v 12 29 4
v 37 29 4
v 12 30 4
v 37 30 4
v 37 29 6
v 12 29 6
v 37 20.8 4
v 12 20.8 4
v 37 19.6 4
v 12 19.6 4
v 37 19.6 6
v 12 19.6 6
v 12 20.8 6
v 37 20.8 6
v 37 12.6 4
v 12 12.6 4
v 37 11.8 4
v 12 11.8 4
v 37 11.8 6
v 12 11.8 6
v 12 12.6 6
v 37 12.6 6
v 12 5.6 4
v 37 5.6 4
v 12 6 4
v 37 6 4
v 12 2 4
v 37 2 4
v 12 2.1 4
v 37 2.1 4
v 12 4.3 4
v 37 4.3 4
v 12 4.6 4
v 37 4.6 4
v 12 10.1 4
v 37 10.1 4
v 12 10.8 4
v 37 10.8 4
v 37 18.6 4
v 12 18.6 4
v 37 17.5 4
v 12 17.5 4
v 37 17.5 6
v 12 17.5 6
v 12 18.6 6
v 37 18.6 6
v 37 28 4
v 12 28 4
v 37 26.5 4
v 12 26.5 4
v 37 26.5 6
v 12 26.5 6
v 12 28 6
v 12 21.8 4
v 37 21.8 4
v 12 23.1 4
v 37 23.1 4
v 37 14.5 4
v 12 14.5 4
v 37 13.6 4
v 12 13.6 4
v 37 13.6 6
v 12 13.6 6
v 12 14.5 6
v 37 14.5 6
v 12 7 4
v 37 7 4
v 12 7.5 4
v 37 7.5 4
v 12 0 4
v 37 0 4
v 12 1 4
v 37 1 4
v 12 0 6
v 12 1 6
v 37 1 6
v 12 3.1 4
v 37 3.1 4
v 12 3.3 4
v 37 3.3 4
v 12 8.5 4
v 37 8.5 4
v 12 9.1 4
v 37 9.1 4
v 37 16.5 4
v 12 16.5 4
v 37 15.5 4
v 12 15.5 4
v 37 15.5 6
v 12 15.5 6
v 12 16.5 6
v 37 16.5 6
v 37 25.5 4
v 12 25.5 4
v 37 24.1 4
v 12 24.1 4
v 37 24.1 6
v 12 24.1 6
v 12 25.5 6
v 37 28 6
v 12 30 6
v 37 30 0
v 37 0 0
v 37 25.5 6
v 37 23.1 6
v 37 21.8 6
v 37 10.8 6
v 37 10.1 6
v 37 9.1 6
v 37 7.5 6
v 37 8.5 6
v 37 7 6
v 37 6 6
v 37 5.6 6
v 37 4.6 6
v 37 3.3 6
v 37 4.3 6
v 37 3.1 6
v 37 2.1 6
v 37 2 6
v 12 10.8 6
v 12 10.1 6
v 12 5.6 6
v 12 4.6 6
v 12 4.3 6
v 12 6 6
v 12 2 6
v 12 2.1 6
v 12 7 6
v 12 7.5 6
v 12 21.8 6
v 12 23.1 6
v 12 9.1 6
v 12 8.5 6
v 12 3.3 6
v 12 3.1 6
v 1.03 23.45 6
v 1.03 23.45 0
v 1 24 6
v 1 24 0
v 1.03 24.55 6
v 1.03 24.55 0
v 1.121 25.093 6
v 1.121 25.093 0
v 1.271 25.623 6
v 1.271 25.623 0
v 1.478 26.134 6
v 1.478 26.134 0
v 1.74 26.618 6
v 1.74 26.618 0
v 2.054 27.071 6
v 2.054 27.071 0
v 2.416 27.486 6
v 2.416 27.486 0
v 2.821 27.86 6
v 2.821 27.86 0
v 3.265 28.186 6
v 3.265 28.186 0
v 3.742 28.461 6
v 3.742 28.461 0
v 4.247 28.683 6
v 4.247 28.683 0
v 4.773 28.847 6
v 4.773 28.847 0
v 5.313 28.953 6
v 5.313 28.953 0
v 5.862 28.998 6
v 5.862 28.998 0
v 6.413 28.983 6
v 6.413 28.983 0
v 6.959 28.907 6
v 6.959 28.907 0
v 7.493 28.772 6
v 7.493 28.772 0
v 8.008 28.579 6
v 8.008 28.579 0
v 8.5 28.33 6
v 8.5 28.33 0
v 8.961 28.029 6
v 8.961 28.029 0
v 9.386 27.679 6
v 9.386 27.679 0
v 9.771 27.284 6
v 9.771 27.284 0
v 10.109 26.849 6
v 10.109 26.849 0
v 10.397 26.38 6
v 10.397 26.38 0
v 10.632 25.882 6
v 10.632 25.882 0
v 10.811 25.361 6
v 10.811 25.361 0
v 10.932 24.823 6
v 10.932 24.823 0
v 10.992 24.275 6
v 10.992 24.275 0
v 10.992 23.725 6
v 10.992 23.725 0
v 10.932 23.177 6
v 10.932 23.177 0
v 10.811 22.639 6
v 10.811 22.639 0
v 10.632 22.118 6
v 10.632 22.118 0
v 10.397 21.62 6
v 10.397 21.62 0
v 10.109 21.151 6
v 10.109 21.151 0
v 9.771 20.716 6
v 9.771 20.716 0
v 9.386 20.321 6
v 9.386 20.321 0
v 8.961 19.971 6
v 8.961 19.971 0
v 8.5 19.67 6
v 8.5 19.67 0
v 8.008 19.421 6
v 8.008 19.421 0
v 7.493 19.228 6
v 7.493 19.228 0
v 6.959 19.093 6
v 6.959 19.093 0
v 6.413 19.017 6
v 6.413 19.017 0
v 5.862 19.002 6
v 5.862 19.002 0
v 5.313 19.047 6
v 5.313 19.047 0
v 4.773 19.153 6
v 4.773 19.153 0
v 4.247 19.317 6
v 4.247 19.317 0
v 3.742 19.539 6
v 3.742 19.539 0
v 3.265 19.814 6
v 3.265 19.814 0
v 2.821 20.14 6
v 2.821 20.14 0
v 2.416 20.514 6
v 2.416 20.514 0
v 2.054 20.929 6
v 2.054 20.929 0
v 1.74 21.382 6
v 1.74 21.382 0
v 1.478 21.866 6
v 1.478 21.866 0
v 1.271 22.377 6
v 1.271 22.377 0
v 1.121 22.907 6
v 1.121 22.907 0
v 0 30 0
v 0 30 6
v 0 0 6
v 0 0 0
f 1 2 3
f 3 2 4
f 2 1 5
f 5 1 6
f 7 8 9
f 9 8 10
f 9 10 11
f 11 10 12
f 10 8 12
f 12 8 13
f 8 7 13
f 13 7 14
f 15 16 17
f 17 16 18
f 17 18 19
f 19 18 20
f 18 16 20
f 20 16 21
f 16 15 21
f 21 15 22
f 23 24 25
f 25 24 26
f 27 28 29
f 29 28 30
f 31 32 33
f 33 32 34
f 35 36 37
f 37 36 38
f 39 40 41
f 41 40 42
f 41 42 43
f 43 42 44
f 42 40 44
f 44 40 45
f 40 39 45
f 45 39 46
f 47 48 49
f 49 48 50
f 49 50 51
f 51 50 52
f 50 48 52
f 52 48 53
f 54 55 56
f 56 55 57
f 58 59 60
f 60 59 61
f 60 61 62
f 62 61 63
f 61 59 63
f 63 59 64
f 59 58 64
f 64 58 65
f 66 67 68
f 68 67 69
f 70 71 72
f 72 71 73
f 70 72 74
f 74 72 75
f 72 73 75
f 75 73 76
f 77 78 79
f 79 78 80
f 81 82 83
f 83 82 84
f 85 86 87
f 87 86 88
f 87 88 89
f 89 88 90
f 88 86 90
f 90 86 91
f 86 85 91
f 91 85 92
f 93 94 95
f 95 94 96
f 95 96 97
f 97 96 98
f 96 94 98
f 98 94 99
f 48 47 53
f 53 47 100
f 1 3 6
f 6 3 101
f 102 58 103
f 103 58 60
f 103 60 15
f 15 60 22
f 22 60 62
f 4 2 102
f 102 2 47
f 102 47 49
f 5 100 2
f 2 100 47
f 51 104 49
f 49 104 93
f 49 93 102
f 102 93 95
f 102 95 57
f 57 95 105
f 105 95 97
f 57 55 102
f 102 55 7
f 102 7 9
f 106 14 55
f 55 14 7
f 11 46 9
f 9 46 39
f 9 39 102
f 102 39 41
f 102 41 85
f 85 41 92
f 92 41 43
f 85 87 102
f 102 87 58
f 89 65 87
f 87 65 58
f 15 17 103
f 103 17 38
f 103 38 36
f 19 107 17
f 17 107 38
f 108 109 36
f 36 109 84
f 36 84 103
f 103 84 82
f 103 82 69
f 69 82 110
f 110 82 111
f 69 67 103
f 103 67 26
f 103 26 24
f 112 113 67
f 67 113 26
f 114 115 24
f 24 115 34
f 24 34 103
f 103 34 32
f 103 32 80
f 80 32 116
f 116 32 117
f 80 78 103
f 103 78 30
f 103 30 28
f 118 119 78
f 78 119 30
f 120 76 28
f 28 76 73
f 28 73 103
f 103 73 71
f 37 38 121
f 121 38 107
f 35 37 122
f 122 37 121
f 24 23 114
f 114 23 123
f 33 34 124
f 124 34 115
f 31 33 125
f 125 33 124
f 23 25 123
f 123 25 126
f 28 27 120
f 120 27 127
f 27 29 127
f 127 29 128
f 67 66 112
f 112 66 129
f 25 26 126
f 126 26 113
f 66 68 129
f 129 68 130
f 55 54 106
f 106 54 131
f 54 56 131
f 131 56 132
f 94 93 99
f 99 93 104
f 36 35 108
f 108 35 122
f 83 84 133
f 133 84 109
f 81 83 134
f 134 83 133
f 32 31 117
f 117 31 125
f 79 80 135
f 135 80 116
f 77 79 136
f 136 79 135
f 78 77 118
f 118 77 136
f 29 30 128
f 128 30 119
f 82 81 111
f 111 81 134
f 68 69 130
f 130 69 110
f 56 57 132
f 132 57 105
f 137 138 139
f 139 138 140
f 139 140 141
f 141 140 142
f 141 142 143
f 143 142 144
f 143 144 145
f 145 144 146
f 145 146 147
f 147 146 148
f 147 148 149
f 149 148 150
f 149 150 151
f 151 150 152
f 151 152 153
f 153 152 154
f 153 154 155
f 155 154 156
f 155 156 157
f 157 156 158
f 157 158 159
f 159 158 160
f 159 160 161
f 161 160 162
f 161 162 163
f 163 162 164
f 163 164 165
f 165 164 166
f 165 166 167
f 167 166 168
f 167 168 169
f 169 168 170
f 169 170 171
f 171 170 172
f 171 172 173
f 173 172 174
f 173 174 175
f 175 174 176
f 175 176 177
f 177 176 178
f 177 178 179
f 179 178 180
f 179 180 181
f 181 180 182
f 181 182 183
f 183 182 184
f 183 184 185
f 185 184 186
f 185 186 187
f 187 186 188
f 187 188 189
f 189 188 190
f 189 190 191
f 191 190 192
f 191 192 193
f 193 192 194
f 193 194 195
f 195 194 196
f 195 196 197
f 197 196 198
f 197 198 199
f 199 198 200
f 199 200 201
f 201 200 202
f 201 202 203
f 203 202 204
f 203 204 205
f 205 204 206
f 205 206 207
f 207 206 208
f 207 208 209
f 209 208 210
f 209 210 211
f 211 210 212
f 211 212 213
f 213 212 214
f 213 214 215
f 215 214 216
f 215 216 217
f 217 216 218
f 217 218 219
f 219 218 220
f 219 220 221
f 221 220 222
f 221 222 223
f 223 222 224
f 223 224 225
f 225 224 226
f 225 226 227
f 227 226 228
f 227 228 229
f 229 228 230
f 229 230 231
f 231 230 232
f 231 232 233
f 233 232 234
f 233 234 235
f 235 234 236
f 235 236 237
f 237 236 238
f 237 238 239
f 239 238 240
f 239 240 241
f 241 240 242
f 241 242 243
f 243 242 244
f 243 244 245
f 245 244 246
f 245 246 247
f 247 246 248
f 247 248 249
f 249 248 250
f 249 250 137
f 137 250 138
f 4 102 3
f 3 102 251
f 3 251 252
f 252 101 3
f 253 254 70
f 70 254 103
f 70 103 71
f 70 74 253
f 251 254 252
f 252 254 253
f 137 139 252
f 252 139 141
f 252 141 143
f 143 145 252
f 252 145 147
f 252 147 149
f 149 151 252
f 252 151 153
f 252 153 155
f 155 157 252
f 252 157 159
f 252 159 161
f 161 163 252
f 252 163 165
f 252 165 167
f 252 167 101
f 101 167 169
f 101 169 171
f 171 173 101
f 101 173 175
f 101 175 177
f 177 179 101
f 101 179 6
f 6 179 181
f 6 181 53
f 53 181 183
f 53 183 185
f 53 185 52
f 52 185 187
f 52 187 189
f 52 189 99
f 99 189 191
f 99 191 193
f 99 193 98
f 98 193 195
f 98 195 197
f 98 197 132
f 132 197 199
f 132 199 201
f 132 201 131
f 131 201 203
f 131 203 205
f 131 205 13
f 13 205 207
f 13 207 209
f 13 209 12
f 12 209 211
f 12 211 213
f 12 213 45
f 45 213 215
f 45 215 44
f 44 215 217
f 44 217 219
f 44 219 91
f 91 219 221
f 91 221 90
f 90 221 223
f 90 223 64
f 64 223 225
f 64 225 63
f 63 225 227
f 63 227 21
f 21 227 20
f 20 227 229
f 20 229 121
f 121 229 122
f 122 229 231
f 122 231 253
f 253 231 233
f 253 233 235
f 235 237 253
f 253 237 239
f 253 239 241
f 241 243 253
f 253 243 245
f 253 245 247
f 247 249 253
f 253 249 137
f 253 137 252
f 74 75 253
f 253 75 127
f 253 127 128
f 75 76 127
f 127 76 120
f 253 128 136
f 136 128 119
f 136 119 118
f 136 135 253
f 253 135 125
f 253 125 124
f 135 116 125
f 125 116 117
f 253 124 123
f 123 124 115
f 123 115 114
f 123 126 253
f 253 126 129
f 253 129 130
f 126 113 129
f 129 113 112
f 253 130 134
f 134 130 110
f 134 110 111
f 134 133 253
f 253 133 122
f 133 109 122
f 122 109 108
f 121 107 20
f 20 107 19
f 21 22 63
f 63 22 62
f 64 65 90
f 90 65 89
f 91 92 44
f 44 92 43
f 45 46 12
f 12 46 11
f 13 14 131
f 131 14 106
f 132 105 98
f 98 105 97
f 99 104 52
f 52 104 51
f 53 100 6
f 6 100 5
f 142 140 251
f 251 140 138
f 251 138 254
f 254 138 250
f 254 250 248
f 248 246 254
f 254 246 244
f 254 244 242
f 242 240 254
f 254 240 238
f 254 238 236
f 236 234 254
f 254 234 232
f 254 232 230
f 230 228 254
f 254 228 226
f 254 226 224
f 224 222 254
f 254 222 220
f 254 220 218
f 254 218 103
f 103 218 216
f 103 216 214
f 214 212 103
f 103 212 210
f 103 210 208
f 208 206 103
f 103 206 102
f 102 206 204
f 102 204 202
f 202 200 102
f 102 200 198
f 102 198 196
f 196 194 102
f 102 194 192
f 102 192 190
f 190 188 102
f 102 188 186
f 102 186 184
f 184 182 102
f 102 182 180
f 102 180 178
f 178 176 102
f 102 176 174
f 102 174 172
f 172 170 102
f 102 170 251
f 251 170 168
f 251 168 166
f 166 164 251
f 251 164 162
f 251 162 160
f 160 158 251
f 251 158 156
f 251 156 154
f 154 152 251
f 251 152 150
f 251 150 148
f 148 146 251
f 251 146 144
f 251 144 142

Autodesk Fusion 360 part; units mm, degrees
sketch "Sketch1" plane through (0, 0, 0) normal (0, 0, 1) x (1, 0, 0)
  line L0 (0, 0) -> (37, 0)
  line L1 (37, 0) -> (37, 30)
  line L2 (37, 30) -> (0, 30)
  line L3 (0, 30) -> (0, 0)
  line L4 (12, 30) -> (12, 0) construction
  line L5 (12, 1) -> (37, 1)
  line L6 (12, 2) -> (37, 2)
  line L7 (12, 2.1) -> (37, 2.1)
  line L8 (12, 3.1) -> (37, 3.1)
  line L9 (12, 3.3) -> (37, 3.3)
  line L10 (12, 4.3) -> (37, 4.3)
  line L11 (12, 4.6) -> (37, 4.6)
  line L12 (12, 5.6) -> (37, 5.6)
  line L13 (12, 6) -> (37, 6)
  line L14 (12, 7) -> (37, 7)
  line L15 (12, 7.5) -> (37, 7.5)
  line L16 (12, 8.5) -> (37, 8.5)
  line L17 (12, 9.1) -> (37, 9.1)
  line L18 (12, 10.1) -> (37, 10.1)
  line L19 (12, 10.8) -> (37, 10.8)
  line L20 (37, 11.8) -> (12, 11.8)
  line L21 (12, 12.6) -> (37, 12.6)
  line L22 (37, 13.6) -> (12, 13.6)
  line L23 (12, 14.5) -> (37, 14.5)
  line L24 (37, 15.5) -> (12, 15.5)
  line L25 (12, 16.5) -> (37, 16.5)
  line L26 (37, 17.5) -> (12, 17.5)
  line L27 (12, 18.6) -> (37, 18.6)
  line L28 (37, 19.6) -> (12, 19.6)
  line L29 (12, 23.1) -> (37, 23.1)
  line L30 (12, 20.8) -> (37, 20.8)
  line L31 (12, 21.8) -> (37, 21.8)
  line L32 (12, 24.1) -> (37, 24.1)
  line L33 (37, 25.5) -> (12, 25.5)
  line L34 (12, 26.5) -> (37, 26.5)
  line L35 (37, 28) -> (12, 28)
  line L36 (12, 29) -> (37, 29)
  line L37 (12, 30) -> (12, 0)
  circle A0 centre (6, 24) radius 5
  dimension "d4" = 30
  dimension "d5" = 37
  dimension "d6" = 25
  dimension "d11" = 1
  dimension "d12" = 1
  dimension "d13" = 0.1
  dimension "d14" = 1
  dimension "d15" = 0.2
  dimension "d16" = 1
  dimension "d17" = 0.3
  dimension "d18" = 1
  dimension "d19" = 0.4
  dimension "d20" = 1
  dimension "d21" = 0.5
  dimension "d22" = 1
  dimension "d23" = 0.6
  dimension "d24" = 1
  dimension "d25" = 0.7
  dimension "d26" = 1
  dimension "d27" = 0.8
  dimension "d28" = 1
  dimension "d29" = 0.9
  dimension "d30" = 1
  dimension "d31" = 1
  dimension "d32" = 1
  dimension "d33" = 1.1
  dimension "d34" = 1
  dimension "d35" = 1.2
  dimension "d36" = 1
  dimension "d37" = 1.3
  dimension "d38" = 1
  dimension "d39" = 1.4
  dimension "d40" = 1
  dimension "d41" = 1.5
  dimension "d42" = 1
  dimension "d47" = 10
extrude "Extrude5" add sketch "Sketch1" along normal blind 6 contours L0 L2 L3 L37
extrude "Extrude6" add sketch "Sketch1" along normal blind 6 contours L1 L5 L6 L37 | L1 L35 L36 L37 | L1 L7 L8 L37 | L1 L33 L34 L37 | L1 L9 L10 L37 | L1 L29 L32 L37 | L1 L11 L12 L37 | L1 L30 L31 L37 | L1 L13 L14 L37 | L1 L27 L28 L37 | L1 L15 L16 L37 | L1 L25 L26 L37 | L1 L17 L18 L37 | L1 L23 L24 L37 | L1 L19 L20 L37 | L1 L21 L22 L37
extrude "Extrude7" add sketch "Sketch1" along normal blind 4 contours L0 L1 L5 L37 | L1 L2 L36 L37 | L1 L6 L7 L37 | L1 L34 L35 L37 | L1 L8 L9 L37 | L1 L32 L33 L37 | L1 L10 L11 L37 | L1 L29 L31 L37 | L1 L12 L13 L37 | L1 L28 L30 L37 | L1 L14 L15 L37 | L1 L26 L27 L37 | L1 L16 L17 L37 | L1 L24 L25 L37 | L1 L18 L19 L37 | L1 L22 L23 L37 | L1 L20 L21 L37
sketch "Sketch3" plane through (0, 0, 0) normal (0, -1, 0) x (1, 0, 0)
  line L0 (0, 0) -> (37, 0)
  line L1 (37, 0) -> (37, 4)
  line L2 (37, 4) -> (12, 4)
  line L3 (12, 4) -> (12, 6)
  line L4 (12, 6) -> (0, 6)
  line L5 (0, 6) -> (0, 0)
  line L6 (0, 3) -> (37, 3) construction
  line L7 (6, 0) -> (6, 6) construction
  circle A0 centre (6, 3) radius 1.6
  dimension "d60" = 6
  dimension "d61" = 3.2
extrude "Extrude8" [suppressed]
thread "Thread2" [suppressed]
equation "length = 37 mm"
equation "width = 30 mm"
equation "thickness = 6 mm"
equation "d4 = width"
equation "d5 = length"
equation "d6 = comb_length"
equation "comb_length = 25 mm"
equation "comb_height = 2 mm"
equation "comb_width = 1 mm"
equation "comb_spacing = 0.1 mm"
equation "d12 = comb_width"
equation "d13 = comb_spacing"
equation "d14 = comb_width"
equation "d15 = comb_spacing * 2"
equation "d16 = comb_width"
equation "d17 = comb_spacing * 3"
equation "d18 = comb_width"
equation "d19 = comb_spacing * 4"
equation "d20 = comb_width"
equation "d21 = comb_spacing * 5"
equation "d22 = comb_width"
equation "d23 = comb_spacing * 6"
equation "d24 = comb_width"
equation "d25 = comb_spacing * 7"
equation "d26 = comb_width"
equation "d27 = comb_spacing * 8"
equation "d28 = comb_width"
equation "d29 = comb_spacing * 9"
equation "d30 = comb_width"
equation "d31 = comb_spacing * 10"
equation "d32 = comb_width"
equation "d33 = comb_spacing * 11"
equation "d34 = comb_width"
equation "d35 = comb_spacing * 12"
equation "d36 = comb_width"
equation "d37 = comb_spacing * 13"
equation "d38 = comb_width"
equation "d39 = comb_spacing * 14"
equation "d40 = comb_width"
equation "d41 = comb_spacing * 15"
equation "d42 = comb_width"
equation "d54 = thickness"
equation "d56 = thickness"
equation "d58 = thickness - comb_height"
equation "d62 = -width"
